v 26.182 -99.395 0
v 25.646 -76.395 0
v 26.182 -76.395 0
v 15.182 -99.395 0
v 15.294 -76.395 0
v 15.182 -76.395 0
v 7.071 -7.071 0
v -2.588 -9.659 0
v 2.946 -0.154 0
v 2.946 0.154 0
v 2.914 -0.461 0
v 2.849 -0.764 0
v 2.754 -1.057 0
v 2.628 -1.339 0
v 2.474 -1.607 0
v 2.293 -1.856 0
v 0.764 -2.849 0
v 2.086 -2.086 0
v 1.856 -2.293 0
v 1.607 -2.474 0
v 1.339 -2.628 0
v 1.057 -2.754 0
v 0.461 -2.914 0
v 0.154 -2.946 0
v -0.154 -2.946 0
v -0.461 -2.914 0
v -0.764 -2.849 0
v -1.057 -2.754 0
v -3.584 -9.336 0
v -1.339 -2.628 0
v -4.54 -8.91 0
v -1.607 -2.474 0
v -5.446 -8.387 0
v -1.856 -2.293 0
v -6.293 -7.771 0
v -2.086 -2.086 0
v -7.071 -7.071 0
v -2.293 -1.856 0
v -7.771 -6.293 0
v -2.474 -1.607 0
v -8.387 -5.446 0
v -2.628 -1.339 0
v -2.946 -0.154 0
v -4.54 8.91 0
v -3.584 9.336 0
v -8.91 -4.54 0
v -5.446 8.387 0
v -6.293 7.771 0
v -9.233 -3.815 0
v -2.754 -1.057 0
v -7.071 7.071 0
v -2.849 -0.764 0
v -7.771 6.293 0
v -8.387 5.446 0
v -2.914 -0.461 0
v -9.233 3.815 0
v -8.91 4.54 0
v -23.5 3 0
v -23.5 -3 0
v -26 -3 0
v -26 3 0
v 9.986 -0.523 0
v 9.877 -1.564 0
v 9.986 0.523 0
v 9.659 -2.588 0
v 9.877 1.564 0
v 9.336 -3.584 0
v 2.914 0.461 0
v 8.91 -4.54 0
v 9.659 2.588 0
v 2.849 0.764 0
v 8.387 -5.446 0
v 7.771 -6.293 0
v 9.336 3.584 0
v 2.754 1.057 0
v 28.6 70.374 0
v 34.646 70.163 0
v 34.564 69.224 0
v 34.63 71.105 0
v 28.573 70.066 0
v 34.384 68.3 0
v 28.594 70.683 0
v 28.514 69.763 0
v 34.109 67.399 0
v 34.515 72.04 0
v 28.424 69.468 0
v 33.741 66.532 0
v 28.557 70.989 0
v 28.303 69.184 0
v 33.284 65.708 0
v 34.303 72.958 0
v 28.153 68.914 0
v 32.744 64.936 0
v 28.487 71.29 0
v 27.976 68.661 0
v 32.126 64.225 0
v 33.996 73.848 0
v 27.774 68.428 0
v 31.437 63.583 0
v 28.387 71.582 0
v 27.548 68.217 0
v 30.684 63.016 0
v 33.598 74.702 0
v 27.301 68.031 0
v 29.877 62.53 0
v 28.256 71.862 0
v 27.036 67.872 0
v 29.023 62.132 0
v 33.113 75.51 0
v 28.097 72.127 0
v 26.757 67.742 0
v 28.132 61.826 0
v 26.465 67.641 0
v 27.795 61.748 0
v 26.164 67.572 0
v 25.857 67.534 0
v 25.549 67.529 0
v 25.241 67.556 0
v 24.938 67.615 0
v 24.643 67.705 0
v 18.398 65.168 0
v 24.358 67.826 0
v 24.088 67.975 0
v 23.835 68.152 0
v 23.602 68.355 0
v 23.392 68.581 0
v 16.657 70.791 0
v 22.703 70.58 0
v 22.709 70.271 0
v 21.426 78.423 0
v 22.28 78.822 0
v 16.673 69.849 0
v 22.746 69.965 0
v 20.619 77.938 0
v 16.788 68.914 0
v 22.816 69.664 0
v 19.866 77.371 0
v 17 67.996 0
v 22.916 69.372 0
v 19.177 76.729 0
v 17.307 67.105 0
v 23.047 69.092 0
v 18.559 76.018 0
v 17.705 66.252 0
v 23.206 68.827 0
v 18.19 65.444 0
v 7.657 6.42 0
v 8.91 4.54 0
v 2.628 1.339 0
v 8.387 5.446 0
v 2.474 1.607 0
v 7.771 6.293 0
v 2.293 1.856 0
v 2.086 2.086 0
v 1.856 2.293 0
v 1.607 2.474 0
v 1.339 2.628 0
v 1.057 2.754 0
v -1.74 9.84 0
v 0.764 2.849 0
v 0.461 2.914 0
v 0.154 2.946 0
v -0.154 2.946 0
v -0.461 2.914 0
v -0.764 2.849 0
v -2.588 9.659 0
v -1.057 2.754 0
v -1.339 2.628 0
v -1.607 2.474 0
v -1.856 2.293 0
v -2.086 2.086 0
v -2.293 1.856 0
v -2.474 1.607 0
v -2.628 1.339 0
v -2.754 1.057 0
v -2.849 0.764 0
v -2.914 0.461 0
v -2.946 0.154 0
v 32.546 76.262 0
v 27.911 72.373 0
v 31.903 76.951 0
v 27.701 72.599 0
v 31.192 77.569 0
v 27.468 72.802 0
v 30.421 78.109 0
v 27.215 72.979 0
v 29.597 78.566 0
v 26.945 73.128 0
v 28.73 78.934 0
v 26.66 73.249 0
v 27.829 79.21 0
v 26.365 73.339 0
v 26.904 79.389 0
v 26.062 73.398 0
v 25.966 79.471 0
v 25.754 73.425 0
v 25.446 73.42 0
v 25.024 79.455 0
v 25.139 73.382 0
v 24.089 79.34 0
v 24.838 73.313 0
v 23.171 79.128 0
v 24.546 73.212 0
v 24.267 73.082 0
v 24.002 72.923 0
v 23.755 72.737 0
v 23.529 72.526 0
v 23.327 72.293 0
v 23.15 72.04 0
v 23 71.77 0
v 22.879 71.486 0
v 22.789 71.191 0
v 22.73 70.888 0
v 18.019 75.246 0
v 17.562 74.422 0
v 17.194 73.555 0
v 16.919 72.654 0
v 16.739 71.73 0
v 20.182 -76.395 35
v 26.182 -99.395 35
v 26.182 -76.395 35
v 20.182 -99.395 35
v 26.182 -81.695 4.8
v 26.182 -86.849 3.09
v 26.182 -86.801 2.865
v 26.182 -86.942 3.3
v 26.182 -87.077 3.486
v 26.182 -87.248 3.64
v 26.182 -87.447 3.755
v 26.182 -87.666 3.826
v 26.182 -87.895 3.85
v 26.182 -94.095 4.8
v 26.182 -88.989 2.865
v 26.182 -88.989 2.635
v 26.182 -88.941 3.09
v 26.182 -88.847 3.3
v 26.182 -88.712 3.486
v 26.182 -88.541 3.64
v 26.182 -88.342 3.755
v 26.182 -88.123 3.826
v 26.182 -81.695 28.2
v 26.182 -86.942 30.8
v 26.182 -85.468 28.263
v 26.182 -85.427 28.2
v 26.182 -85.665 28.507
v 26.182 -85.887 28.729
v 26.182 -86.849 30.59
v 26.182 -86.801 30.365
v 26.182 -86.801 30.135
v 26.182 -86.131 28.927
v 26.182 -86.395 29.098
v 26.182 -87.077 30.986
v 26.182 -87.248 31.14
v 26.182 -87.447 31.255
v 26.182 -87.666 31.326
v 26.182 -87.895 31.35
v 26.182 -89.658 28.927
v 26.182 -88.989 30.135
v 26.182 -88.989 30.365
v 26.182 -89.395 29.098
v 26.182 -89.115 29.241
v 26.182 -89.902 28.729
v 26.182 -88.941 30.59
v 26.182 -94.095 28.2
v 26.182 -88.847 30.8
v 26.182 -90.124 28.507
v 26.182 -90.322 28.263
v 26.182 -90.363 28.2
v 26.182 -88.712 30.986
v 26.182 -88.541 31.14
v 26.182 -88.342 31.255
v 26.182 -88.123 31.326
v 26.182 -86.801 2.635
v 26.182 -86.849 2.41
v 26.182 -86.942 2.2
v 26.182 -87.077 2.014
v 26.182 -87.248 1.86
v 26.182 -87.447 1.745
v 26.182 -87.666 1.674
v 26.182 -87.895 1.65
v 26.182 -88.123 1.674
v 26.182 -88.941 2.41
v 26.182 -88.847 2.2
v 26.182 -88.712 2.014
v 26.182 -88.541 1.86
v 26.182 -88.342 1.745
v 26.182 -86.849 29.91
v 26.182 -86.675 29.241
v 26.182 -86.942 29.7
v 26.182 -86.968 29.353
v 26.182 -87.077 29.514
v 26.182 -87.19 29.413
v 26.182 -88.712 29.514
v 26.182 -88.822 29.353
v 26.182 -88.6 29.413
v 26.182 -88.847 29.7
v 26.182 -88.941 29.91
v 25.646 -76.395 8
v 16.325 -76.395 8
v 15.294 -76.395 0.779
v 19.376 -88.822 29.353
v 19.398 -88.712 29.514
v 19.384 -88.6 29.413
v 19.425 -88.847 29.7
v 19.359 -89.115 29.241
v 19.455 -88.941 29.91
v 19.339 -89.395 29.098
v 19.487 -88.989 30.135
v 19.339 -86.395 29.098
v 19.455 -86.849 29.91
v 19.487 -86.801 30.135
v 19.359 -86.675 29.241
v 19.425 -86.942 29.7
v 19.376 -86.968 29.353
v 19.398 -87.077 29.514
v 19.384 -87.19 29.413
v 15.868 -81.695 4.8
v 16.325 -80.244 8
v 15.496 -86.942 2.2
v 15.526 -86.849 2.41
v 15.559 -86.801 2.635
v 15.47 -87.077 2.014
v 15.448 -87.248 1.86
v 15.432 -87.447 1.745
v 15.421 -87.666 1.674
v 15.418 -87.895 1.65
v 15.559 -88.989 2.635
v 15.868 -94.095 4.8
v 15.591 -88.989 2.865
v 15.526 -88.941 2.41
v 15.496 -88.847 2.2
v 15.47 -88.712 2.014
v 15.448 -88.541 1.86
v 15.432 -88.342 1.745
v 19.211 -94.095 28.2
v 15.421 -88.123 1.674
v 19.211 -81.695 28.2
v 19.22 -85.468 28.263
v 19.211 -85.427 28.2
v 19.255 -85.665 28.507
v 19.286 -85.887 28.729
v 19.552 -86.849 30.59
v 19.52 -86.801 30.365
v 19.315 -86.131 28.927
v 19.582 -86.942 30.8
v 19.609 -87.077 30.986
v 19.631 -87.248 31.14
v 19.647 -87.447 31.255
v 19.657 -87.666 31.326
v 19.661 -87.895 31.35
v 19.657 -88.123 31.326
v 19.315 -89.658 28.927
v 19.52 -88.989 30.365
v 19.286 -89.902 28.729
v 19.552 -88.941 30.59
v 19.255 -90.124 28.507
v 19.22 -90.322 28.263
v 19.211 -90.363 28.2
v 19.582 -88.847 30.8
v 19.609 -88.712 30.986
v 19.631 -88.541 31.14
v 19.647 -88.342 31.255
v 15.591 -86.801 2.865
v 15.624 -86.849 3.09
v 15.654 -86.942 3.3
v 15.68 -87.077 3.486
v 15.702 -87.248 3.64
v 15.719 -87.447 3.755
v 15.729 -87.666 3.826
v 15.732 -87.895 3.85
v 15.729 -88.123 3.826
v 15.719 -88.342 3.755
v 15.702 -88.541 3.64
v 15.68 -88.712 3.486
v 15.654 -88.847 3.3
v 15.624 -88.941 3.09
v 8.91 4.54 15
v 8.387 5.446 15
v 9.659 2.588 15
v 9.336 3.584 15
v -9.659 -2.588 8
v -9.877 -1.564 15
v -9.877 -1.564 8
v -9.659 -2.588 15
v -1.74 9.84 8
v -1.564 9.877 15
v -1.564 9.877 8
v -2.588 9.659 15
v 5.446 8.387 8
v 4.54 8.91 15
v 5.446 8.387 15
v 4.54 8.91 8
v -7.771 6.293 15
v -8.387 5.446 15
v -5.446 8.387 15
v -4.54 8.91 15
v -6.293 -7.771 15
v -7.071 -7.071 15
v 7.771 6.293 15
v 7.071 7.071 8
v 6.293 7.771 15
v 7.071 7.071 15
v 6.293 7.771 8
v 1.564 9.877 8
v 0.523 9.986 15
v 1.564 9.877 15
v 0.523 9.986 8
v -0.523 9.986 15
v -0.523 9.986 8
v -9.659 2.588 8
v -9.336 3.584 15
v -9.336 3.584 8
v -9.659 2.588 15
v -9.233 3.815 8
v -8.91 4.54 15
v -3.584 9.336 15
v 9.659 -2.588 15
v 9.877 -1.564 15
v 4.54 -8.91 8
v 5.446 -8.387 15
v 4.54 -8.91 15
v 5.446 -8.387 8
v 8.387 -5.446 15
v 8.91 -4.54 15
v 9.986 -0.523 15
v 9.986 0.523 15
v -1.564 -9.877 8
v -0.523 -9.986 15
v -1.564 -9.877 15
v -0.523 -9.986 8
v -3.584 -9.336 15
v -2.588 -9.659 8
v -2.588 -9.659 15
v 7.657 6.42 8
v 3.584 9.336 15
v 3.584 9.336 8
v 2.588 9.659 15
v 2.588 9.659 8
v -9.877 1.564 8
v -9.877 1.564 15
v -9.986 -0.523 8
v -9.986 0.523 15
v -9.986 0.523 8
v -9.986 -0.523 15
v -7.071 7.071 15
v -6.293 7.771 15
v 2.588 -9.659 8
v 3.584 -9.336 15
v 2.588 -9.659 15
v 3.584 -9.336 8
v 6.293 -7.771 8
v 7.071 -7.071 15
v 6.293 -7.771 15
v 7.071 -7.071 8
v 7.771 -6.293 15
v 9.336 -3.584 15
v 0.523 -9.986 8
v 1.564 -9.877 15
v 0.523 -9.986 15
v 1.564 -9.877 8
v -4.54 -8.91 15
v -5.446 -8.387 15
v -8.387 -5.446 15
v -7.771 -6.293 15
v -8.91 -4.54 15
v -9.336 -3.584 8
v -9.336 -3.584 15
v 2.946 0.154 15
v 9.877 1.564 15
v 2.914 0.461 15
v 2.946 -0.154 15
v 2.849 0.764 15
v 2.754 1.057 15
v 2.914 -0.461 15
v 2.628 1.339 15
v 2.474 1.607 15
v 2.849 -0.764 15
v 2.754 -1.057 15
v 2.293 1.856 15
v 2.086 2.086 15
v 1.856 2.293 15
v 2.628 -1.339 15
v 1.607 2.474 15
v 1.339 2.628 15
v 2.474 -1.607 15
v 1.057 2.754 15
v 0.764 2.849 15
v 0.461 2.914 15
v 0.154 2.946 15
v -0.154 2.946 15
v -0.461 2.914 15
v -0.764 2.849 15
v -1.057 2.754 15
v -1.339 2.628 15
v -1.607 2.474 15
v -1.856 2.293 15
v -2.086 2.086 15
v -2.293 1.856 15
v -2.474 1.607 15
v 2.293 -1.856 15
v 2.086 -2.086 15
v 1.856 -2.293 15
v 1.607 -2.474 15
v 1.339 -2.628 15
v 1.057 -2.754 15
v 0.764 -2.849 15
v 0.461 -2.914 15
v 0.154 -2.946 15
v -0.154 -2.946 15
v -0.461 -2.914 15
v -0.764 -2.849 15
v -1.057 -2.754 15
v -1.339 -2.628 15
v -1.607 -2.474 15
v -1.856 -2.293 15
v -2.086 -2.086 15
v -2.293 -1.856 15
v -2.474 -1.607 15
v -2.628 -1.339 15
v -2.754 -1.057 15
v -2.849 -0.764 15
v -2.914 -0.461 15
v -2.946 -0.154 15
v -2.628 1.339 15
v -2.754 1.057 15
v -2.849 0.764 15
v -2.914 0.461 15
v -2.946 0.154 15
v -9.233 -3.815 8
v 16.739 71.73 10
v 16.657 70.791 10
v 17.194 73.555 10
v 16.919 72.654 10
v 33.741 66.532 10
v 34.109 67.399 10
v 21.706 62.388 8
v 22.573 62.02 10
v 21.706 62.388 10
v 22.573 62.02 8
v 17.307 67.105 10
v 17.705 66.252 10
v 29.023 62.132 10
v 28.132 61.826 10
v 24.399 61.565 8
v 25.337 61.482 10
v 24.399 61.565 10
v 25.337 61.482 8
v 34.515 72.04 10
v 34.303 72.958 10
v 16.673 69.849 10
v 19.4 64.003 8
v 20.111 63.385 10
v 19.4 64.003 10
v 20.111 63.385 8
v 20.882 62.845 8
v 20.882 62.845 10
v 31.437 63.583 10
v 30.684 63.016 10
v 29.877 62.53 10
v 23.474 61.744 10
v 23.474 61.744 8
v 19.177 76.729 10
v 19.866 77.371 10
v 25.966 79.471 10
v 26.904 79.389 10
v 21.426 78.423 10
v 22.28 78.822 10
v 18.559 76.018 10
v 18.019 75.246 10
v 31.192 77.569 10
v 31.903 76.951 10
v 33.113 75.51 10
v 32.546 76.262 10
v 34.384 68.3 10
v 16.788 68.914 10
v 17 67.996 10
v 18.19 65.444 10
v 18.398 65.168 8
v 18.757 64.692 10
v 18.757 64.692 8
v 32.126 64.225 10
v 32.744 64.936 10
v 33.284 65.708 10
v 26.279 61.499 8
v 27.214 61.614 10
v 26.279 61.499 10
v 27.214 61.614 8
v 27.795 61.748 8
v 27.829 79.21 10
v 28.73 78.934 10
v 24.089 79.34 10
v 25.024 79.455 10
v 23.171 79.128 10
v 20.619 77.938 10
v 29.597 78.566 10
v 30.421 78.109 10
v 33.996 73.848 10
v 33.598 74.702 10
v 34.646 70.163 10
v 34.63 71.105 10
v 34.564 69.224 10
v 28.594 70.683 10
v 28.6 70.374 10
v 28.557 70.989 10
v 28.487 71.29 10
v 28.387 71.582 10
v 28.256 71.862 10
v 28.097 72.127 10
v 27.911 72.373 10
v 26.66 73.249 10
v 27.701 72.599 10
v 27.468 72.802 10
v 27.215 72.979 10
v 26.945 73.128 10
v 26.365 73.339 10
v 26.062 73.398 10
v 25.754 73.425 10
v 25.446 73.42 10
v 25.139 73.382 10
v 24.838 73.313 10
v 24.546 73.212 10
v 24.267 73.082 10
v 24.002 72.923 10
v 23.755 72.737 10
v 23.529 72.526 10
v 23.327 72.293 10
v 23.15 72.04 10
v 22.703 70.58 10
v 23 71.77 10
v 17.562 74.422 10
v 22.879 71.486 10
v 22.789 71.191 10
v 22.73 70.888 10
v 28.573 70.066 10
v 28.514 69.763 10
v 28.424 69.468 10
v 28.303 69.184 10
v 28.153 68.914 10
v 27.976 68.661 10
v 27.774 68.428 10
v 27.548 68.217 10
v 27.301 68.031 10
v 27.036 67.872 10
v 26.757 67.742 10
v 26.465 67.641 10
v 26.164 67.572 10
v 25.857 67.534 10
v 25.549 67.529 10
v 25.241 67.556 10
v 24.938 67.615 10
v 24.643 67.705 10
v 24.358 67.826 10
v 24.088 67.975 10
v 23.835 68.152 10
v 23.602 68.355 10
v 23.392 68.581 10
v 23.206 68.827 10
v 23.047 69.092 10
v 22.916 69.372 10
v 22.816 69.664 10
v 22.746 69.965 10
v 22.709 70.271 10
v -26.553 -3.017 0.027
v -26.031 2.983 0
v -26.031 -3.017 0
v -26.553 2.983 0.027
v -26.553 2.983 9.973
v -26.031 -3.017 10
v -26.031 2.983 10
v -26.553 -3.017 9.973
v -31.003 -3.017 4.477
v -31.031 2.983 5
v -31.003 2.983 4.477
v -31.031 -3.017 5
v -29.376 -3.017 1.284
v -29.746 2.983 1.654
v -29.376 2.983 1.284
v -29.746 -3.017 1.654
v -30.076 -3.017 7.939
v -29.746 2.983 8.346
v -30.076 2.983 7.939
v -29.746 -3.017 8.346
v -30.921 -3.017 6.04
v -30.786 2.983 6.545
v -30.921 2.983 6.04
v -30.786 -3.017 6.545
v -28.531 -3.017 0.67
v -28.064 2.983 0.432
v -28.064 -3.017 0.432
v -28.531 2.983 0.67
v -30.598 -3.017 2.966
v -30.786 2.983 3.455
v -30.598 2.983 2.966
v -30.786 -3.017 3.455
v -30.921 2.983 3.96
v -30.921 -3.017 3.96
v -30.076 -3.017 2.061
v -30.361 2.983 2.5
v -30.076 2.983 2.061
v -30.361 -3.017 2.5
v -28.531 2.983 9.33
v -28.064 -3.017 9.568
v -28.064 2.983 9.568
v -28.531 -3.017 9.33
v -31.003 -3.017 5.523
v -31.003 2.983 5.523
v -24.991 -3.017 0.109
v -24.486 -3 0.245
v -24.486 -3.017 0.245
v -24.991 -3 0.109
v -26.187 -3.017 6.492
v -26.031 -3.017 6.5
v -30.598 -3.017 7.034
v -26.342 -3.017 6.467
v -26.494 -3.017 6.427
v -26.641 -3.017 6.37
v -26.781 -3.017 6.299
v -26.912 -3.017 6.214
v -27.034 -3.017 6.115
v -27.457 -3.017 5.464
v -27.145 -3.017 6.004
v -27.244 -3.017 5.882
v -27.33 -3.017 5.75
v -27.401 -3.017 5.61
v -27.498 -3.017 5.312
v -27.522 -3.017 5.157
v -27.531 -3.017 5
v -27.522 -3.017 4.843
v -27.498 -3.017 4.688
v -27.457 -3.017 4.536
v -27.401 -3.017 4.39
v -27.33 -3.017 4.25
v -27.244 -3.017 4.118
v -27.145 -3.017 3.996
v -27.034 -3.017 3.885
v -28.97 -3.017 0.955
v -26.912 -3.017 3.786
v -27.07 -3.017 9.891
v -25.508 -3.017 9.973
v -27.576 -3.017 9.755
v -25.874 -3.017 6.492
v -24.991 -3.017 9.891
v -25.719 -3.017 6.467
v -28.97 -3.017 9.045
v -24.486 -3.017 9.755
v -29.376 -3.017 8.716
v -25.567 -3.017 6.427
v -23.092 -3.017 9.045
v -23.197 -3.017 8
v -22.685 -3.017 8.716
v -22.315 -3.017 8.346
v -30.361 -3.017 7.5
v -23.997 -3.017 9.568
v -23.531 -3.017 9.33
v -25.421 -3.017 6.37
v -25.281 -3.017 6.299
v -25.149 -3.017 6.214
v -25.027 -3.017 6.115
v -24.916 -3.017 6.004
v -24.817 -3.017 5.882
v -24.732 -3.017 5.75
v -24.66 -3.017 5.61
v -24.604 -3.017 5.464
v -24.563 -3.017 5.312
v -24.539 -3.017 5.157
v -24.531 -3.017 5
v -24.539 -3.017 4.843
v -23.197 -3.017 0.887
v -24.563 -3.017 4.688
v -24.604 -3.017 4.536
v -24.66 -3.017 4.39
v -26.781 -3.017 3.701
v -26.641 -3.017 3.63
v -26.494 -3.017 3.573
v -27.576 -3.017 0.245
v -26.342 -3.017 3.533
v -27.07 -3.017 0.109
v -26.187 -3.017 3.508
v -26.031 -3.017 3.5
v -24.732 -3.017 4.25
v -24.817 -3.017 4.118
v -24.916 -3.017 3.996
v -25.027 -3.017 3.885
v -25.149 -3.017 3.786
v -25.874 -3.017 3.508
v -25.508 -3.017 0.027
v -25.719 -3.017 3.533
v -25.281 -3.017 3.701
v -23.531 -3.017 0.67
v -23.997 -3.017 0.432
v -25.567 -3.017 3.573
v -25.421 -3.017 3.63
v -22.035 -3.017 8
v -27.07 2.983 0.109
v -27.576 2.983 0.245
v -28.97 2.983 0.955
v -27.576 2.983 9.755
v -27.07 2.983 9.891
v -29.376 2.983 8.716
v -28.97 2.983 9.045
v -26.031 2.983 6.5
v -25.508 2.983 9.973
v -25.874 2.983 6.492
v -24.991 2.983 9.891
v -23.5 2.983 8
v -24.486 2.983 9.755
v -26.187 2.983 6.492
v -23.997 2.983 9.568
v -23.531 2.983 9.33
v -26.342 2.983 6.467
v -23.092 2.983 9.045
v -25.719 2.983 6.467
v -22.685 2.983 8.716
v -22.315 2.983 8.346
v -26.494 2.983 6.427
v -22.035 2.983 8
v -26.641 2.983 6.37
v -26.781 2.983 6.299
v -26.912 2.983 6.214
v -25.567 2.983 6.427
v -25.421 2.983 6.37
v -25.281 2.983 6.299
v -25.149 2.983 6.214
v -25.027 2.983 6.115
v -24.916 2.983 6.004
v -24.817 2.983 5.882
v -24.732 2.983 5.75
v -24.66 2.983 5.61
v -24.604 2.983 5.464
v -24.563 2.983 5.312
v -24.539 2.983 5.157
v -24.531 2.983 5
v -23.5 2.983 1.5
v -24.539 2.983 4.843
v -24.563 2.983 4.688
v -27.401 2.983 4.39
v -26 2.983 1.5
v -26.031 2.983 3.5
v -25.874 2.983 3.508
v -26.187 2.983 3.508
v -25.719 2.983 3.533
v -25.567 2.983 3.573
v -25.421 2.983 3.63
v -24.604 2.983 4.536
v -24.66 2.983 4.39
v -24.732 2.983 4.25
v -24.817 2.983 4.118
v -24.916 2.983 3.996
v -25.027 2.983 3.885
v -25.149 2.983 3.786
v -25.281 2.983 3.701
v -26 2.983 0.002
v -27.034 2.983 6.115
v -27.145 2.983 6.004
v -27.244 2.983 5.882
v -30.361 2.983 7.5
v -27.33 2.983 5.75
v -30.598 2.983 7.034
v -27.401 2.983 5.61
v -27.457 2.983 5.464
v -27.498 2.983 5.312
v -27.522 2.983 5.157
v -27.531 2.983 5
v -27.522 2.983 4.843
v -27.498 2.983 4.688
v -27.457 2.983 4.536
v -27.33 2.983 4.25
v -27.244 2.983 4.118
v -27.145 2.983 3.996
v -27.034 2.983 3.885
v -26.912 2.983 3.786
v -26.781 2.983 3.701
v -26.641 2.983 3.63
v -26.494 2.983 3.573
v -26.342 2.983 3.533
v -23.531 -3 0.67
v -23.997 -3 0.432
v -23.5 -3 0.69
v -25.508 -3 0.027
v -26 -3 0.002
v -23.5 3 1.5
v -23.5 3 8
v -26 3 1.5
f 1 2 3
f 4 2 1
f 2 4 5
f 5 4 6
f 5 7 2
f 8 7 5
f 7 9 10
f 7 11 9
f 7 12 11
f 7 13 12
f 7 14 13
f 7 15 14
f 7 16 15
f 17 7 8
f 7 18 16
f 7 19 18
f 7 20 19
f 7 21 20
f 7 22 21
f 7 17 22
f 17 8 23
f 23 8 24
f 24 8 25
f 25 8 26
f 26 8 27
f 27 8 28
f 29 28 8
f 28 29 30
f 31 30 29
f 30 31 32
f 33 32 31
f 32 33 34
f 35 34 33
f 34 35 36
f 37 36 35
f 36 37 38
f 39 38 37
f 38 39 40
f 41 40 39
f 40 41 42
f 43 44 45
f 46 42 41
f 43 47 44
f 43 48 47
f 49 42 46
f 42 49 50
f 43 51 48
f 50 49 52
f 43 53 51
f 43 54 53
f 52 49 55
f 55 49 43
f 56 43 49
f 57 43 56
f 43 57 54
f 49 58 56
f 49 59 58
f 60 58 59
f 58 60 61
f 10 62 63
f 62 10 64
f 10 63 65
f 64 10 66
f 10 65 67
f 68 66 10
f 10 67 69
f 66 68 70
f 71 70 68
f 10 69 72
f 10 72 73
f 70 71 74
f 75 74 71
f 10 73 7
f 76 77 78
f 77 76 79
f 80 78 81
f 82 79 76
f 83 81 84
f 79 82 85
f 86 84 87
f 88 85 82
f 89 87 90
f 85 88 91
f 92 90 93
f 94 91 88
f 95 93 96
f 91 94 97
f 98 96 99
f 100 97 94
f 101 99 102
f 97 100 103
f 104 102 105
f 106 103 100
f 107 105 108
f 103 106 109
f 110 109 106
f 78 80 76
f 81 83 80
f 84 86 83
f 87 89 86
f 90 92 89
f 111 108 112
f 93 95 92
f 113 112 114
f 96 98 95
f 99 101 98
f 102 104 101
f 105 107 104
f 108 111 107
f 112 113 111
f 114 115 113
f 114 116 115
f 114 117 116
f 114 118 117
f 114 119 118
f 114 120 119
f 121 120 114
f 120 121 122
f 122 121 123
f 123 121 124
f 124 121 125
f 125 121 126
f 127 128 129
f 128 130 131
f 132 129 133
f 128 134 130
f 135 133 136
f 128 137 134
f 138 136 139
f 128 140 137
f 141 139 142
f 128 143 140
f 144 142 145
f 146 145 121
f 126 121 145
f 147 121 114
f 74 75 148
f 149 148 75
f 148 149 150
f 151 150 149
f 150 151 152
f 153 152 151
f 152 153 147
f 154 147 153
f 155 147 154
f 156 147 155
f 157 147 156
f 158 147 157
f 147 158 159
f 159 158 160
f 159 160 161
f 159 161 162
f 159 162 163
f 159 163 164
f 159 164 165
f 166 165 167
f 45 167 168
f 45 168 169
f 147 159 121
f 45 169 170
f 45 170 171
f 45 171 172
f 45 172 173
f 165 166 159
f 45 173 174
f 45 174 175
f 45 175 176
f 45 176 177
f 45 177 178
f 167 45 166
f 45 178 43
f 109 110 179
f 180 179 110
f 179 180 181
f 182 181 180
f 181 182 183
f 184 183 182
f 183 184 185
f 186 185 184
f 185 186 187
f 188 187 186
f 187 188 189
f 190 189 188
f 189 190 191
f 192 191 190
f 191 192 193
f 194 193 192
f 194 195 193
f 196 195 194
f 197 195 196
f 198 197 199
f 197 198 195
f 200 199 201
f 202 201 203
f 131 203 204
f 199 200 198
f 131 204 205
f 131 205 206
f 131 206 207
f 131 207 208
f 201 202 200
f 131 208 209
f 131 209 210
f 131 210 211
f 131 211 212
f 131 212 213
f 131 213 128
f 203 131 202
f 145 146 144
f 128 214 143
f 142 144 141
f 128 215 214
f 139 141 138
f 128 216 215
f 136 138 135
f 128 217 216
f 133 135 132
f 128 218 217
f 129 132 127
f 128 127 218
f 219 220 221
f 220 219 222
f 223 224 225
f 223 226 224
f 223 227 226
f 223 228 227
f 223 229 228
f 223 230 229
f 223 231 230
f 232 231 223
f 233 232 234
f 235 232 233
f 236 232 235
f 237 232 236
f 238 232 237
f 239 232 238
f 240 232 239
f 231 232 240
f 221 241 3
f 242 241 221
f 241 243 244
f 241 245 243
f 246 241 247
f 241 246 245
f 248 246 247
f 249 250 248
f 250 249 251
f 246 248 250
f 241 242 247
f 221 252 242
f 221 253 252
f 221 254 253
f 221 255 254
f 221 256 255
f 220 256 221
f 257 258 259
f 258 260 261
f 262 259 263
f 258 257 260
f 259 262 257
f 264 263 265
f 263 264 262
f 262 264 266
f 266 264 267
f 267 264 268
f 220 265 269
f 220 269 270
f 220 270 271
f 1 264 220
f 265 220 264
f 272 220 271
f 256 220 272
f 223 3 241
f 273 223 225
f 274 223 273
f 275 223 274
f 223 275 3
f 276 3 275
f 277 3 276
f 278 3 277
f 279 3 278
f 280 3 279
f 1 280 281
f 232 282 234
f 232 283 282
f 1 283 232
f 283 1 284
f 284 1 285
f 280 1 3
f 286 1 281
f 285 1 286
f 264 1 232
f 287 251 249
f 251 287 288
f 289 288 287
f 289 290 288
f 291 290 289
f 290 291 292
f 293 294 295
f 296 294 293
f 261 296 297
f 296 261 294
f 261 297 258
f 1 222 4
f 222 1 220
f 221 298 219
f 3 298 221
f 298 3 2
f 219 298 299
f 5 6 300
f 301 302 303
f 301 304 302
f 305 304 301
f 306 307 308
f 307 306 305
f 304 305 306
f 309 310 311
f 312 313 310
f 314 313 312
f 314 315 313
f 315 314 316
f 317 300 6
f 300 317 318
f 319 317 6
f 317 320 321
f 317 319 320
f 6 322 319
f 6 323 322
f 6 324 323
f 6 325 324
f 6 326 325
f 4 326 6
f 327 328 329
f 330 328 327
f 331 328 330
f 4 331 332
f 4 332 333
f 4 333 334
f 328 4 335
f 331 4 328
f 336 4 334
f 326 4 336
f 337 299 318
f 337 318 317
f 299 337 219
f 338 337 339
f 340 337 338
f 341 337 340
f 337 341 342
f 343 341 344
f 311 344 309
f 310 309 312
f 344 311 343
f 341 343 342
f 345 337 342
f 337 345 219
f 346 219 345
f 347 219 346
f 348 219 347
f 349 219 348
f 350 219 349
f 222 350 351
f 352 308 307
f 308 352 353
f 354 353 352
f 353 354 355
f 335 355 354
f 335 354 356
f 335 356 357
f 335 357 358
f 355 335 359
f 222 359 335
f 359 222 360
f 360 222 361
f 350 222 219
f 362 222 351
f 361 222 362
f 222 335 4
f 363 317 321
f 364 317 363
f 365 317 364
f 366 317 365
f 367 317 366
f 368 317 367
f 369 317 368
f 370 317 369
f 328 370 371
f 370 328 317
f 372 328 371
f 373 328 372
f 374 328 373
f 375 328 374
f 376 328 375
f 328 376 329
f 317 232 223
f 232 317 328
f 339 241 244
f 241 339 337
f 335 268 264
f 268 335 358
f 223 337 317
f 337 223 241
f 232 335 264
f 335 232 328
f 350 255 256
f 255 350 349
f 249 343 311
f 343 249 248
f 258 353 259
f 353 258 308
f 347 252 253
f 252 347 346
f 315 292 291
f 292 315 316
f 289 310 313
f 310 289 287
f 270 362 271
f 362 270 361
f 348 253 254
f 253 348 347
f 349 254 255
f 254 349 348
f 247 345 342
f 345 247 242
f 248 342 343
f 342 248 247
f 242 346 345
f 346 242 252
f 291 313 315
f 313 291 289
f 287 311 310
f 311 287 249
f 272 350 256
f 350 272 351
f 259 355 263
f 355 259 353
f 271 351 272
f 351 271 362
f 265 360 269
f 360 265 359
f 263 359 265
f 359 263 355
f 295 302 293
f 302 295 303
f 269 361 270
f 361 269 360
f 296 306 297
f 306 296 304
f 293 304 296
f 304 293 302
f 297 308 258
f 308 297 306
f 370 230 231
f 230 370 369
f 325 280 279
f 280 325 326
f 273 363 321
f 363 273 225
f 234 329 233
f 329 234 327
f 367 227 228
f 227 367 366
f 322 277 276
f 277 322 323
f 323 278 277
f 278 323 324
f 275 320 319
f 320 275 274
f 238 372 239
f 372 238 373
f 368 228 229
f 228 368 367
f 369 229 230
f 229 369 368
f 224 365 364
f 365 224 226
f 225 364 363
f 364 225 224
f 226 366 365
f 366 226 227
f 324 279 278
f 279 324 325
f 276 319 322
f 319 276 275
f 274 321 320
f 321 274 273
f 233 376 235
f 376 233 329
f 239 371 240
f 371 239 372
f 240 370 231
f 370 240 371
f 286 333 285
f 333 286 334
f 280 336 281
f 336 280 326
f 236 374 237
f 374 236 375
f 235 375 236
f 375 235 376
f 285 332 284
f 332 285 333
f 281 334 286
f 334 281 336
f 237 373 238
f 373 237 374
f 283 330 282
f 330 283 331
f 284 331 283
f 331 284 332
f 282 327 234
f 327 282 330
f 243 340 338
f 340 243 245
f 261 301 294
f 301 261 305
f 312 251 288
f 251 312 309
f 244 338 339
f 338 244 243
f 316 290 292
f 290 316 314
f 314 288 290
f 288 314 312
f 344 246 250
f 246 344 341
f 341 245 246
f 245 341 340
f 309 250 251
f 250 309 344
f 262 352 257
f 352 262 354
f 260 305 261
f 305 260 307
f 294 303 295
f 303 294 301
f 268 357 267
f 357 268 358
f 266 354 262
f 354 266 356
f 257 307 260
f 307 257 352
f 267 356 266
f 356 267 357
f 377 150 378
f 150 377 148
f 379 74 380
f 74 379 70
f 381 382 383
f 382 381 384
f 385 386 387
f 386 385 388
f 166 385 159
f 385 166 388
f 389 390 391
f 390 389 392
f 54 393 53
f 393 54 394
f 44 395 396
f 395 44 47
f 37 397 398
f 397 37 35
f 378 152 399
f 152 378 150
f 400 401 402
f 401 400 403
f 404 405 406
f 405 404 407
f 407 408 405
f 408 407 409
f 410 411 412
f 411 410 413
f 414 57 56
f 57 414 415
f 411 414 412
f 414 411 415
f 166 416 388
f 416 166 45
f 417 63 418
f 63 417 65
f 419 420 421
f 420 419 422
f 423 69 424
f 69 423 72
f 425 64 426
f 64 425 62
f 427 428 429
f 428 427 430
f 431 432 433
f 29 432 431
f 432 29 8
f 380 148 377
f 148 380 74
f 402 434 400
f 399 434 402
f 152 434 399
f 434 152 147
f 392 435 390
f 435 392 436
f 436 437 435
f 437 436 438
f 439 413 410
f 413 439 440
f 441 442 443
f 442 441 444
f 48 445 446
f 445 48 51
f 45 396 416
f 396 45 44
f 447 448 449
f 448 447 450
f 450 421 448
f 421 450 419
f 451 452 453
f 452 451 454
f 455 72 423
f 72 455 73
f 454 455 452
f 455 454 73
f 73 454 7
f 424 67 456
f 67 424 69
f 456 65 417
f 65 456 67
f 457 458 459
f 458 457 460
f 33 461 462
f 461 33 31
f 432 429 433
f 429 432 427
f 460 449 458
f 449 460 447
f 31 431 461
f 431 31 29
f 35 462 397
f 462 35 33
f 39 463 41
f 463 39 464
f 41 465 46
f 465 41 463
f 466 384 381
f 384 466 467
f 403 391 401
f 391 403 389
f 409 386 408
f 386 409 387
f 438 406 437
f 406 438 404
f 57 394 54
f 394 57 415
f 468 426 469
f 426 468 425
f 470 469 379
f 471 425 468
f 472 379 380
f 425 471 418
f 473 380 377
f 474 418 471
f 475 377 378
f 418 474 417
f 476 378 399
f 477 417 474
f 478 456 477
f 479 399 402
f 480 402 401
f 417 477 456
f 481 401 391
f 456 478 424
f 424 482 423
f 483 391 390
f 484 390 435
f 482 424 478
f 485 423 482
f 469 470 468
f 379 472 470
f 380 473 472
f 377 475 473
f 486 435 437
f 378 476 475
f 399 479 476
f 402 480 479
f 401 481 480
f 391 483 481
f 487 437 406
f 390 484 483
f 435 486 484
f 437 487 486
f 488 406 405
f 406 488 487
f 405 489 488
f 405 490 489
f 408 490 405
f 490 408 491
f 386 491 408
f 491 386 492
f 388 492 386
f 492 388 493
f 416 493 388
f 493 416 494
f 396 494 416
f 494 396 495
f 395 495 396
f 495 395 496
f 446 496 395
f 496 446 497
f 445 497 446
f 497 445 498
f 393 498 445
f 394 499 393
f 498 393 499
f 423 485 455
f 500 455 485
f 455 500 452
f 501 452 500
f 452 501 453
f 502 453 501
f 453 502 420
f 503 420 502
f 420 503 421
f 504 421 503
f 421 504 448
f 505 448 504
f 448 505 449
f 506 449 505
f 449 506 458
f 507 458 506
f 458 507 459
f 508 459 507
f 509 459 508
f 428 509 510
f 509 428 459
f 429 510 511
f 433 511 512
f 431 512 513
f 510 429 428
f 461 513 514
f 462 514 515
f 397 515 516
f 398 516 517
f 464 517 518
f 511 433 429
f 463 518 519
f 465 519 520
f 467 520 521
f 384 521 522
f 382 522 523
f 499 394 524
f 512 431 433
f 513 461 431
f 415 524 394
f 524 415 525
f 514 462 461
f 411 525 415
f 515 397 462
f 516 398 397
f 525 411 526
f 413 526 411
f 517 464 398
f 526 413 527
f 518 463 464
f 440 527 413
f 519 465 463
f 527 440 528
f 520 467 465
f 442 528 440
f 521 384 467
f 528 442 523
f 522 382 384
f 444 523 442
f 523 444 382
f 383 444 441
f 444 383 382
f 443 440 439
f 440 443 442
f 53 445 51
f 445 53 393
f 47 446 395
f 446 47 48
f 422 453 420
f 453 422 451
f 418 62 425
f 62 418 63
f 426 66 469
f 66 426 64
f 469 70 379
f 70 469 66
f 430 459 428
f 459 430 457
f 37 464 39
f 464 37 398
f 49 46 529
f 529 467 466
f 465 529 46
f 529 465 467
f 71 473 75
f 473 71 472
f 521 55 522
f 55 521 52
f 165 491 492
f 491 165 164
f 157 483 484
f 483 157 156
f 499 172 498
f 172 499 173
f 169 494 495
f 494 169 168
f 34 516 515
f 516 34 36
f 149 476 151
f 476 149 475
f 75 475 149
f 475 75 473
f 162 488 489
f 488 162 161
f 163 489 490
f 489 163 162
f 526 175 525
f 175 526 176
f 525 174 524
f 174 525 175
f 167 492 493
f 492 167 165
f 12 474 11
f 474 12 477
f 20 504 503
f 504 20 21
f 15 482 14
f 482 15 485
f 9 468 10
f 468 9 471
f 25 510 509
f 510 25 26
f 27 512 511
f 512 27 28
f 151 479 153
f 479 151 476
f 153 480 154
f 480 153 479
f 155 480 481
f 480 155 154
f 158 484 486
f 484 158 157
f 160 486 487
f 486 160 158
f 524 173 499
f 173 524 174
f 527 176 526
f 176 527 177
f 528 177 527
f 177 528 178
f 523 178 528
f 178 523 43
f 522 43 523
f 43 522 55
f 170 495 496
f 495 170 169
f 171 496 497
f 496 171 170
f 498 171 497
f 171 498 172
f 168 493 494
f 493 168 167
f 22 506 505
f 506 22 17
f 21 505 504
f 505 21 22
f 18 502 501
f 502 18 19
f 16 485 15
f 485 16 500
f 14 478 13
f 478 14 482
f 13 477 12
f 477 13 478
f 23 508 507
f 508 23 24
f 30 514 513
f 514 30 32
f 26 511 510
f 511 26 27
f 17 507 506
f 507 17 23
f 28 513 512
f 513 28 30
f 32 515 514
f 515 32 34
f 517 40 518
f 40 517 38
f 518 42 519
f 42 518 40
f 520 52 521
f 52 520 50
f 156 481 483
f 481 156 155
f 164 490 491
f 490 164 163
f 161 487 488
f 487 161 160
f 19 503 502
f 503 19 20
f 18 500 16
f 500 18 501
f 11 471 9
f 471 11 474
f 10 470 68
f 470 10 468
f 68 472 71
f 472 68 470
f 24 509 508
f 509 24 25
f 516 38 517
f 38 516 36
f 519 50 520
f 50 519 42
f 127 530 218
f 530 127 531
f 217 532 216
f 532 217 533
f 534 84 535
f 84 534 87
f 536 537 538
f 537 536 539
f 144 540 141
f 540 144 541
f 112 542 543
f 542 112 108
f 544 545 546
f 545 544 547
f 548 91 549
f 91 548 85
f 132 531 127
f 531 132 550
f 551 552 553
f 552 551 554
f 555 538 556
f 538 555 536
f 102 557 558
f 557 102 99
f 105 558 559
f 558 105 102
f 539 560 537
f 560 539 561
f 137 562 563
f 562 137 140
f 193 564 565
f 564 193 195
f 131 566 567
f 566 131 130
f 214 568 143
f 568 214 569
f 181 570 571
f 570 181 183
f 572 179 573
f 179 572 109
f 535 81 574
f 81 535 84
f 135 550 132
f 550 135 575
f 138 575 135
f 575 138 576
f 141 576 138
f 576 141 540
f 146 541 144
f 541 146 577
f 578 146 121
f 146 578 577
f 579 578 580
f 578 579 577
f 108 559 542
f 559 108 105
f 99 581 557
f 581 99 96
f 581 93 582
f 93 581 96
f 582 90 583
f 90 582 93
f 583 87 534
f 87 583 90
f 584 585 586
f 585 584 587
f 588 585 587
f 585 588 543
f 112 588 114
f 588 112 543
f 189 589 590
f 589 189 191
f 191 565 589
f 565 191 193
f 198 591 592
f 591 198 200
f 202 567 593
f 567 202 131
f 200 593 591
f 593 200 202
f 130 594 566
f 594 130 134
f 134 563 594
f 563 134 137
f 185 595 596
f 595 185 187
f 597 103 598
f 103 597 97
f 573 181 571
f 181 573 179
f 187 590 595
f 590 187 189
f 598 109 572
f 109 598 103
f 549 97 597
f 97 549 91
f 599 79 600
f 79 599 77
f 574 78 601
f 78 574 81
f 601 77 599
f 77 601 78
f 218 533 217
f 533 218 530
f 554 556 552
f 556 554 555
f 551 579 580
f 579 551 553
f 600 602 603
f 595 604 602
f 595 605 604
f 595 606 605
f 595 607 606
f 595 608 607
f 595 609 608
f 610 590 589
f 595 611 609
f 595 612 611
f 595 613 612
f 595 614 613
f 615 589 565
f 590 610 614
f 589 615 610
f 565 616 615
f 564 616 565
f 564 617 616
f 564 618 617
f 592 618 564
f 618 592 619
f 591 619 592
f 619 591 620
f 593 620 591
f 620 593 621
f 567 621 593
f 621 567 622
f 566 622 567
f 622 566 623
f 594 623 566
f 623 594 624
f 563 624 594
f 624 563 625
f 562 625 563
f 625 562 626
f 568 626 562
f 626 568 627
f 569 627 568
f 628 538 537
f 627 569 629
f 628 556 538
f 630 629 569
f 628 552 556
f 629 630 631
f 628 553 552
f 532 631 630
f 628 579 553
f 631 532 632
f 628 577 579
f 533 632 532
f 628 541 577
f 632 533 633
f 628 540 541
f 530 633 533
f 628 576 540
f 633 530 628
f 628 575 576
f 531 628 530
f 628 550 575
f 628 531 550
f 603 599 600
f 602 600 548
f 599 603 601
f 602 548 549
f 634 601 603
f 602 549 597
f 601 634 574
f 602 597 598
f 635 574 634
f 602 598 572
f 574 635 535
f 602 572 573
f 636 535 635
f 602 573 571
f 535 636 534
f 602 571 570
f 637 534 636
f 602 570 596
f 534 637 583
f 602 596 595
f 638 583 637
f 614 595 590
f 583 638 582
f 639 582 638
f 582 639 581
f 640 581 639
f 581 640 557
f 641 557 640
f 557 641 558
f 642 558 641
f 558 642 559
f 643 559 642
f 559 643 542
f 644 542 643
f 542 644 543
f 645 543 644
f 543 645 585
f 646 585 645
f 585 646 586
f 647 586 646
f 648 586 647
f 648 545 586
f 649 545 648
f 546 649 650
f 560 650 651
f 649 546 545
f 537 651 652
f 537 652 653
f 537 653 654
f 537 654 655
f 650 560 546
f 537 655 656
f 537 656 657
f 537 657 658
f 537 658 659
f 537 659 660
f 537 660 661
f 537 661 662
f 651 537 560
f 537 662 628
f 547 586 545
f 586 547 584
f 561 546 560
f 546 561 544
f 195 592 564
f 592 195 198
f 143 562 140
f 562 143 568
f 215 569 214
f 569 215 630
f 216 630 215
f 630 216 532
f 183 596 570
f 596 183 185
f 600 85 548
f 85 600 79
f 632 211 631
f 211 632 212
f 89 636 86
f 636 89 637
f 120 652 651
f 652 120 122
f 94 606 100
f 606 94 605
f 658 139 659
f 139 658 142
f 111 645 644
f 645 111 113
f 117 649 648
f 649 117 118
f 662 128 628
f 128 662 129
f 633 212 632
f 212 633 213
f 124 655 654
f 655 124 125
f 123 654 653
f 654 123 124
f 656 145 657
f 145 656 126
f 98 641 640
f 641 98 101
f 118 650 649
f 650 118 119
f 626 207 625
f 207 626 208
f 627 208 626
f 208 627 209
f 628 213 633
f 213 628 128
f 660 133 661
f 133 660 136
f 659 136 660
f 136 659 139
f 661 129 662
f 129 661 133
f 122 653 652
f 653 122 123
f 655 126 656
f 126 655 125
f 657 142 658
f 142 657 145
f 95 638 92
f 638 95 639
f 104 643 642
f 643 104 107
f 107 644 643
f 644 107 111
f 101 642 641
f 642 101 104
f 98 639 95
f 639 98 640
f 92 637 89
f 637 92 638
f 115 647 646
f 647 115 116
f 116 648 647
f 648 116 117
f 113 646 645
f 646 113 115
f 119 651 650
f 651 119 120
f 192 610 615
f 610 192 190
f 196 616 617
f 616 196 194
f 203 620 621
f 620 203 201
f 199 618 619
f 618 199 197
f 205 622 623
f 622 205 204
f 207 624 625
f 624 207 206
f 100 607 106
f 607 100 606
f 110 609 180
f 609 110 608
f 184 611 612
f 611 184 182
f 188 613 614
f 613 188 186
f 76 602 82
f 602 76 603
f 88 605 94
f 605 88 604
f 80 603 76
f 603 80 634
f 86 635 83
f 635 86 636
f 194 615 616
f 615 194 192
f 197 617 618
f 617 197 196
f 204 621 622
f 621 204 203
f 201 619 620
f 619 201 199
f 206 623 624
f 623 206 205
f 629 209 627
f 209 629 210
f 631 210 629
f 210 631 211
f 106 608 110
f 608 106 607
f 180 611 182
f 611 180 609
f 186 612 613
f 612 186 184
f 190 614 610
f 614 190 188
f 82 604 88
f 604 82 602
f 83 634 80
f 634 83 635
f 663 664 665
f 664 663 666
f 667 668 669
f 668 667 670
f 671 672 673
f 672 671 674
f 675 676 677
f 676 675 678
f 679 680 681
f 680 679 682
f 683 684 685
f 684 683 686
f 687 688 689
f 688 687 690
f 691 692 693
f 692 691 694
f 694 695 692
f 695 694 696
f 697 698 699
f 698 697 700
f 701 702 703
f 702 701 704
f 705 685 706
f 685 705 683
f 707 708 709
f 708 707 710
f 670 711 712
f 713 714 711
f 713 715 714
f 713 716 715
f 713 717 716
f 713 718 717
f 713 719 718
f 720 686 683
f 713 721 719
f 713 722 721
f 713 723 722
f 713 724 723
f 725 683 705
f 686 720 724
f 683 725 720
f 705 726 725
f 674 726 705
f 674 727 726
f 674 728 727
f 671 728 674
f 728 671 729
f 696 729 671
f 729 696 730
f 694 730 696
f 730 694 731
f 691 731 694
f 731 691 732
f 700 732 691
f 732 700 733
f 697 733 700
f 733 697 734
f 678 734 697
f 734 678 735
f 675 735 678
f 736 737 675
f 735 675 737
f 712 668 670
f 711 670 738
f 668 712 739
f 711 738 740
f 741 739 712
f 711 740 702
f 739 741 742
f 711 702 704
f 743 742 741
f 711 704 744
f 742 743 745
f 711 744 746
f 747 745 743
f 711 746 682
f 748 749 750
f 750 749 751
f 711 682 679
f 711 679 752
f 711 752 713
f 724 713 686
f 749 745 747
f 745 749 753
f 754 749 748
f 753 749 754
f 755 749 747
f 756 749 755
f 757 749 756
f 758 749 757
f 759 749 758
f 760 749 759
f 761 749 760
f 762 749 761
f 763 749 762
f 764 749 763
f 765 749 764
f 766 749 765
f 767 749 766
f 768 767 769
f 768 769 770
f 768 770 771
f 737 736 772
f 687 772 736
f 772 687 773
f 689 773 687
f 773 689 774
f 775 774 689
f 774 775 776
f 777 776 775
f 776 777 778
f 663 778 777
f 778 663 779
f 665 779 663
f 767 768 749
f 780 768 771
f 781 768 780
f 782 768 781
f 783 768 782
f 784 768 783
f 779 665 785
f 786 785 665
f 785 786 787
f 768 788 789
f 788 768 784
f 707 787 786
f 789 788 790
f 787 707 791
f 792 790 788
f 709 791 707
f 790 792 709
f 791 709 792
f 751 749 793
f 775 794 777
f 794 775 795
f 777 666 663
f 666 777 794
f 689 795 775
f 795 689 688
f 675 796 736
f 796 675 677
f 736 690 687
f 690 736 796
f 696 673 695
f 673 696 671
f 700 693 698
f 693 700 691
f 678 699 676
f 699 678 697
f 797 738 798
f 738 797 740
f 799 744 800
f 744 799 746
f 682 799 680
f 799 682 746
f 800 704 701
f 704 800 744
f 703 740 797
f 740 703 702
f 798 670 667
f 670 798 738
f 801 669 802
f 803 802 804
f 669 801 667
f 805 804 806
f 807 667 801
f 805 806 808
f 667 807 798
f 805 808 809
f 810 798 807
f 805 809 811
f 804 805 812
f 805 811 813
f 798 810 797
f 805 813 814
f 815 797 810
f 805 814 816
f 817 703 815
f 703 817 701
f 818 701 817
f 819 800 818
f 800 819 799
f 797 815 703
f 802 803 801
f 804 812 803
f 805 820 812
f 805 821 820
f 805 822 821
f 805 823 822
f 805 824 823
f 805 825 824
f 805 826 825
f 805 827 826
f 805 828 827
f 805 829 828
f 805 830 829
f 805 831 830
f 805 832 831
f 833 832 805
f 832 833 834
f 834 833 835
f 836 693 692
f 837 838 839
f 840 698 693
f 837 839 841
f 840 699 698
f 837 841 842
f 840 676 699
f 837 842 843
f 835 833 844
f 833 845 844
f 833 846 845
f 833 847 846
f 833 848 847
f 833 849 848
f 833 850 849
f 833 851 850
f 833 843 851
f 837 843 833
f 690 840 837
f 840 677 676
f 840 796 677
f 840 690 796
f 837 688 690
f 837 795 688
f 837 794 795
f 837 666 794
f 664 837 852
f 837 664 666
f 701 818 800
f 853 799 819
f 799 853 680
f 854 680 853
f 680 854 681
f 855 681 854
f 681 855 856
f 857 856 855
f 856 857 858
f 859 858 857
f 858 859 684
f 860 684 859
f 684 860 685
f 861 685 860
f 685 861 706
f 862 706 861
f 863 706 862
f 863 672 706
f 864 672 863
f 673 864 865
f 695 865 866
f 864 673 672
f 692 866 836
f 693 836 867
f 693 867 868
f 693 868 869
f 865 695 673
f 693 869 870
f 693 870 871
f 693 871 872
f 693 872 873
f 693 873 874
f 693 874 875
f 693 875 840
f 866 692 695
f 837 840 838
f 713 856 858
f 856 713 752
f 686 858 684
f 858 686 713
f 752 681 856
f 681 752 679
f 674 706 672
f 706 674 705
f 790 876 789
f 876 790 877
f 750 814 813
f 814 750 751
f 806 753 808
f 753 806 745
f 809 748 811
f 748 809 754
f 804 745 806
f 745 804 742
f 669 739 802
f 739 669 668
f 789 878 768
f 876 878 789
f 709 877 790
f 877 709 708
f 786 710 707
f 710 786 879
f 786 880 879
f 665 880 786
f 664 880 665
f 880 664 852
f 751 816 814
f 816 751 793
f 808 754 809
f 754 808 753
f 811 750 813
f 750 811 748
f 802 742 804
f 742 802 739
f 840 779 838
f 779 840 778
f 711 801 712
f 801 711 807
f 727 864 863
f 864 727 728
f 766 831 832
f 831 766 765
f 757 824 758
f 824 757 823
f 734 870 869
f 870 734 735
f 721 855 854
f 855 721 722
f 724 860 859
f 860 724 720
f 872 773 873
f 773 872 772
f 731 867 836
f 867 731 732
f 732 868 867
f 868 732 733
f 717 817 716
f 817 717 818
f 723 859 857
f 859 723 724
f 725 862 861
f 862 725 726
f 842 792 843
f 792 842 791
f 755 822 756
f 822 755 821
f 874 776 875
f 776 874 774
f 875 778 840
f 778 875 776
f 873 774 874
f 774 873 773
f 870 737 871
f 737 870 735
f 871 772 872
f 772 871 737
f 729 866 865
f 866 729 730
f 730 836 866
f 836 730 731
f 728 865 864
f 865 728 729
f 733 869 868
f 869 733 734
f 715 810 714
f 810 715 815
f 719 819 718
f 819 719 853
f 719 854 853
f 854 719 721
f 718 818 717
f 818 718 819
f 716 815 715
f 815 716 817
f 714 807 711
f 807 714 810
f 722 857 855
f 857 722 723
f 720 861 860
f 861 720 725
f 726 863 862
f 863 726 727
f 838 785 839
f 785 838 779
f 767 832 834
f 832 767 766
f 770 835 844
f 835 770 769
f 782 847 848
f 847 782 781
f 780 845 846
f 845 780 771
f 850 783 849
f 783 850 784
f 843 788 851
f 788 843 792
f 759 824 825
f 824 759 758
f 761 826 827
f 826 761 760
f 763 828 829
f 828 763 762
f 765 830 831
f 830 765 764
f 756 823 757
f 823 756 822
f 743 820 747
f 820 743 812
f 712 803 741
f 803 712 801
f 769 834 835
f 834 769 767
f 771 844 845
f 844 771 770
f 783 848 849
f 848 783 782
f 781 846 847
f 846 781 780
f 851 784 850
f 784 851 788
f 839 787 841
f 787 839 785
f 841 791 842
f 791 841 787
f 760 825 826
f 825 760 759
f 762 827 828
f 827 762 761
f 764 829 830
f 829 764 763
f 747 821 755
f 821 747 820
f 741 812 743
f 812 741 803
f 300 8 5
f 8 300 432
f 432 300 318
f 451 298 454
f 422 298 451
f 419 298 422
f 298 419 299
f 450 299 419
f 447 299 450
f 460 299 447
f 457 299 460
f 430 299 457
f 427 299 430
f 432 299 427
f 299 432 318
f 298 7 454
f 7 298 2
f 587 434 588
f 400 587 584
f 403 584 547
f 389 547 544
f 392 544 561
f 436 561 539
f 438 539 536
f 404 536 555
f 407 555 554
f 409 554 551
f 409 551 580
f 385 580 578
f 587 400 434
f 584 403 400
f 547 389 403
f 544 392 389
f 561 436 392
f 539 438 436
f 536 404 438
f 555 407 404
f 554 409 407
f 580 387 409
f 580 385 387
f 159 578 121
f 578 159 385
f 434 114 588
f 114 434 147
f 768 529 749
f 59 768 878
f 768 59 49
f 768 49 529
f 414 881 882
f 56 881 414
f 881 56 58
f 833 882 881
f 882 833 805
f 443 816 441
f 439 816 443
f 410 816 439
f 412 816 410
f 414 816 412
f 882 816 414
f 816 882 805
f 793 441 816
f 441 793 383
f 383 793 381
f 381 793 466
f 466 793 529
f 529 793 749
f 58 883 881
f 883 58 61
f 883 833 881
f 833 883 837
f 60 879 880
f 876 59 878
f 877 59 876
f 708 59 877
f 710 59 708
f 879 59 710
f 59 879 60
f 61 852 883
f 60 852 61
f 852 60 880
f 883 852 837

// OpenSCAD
rotate([0,0,15])front();

module front(){
$fn=60;

translate([5,-82.5,0])rotate([0,-90,-15])
translate([16.5,-9.5,0])
servo_bracket();

translate([-5,-82.5,0])cube([10,78.5,8]);

difference(){
cylinder(d=20,h=15);
translate([0,0,-1])cylinder(d=5.9,h=17);
}

rotate([0,0,145])
translate([-5,-70,0])cube([10,64.5,8]);

rotate([0,0,145])translate([0,-75,0])
difference(){
cylinder(d=18,h=10);
translate([0,0,-1])cylinder(d=5.9,h=12);
}

rotate([0,0,75]) translate([0,6,0])
linear_extrude(height=8)
polygon([[-4,0],[4,0],[3,17.5],[-3,17.5]]);

rotate([0,0,75]) translate([-3,19,0])
cube([6,7,1.5]);

translate([-1,0.25,5])rotate([0,0,75]) 
translate([0,25,0])rotate([0,90,0])
difference(){
cylinder(d=10,h=6,center=true);
cylinder(d=3,h=7,center=true);
}
}

module servo_bracket(){
difference(){
union(){
translate([1,0,2.5])cube([35,23,5],center=true);
translate([0,11.5,3])
rotate([90,0,0])linear_extrude(height=23)
polygon([[-16.5,0],[18.5,2],[18.5,3],[-16.5,8]]);
translate([13.75,0,0])cylinder(d=8,h=2,$fn=60);
}
cube([23.4,12.4,50],center=true);
translate([13.75,0,-1])cylinder(d=2.2,h=50,$fn=30);
translate([-13.75,0,-1])cylinder(d=2.2,h=50,$fn=30);
translate([10,0,0])cylinder(d=6,h=12,$fn=60);
}
}
